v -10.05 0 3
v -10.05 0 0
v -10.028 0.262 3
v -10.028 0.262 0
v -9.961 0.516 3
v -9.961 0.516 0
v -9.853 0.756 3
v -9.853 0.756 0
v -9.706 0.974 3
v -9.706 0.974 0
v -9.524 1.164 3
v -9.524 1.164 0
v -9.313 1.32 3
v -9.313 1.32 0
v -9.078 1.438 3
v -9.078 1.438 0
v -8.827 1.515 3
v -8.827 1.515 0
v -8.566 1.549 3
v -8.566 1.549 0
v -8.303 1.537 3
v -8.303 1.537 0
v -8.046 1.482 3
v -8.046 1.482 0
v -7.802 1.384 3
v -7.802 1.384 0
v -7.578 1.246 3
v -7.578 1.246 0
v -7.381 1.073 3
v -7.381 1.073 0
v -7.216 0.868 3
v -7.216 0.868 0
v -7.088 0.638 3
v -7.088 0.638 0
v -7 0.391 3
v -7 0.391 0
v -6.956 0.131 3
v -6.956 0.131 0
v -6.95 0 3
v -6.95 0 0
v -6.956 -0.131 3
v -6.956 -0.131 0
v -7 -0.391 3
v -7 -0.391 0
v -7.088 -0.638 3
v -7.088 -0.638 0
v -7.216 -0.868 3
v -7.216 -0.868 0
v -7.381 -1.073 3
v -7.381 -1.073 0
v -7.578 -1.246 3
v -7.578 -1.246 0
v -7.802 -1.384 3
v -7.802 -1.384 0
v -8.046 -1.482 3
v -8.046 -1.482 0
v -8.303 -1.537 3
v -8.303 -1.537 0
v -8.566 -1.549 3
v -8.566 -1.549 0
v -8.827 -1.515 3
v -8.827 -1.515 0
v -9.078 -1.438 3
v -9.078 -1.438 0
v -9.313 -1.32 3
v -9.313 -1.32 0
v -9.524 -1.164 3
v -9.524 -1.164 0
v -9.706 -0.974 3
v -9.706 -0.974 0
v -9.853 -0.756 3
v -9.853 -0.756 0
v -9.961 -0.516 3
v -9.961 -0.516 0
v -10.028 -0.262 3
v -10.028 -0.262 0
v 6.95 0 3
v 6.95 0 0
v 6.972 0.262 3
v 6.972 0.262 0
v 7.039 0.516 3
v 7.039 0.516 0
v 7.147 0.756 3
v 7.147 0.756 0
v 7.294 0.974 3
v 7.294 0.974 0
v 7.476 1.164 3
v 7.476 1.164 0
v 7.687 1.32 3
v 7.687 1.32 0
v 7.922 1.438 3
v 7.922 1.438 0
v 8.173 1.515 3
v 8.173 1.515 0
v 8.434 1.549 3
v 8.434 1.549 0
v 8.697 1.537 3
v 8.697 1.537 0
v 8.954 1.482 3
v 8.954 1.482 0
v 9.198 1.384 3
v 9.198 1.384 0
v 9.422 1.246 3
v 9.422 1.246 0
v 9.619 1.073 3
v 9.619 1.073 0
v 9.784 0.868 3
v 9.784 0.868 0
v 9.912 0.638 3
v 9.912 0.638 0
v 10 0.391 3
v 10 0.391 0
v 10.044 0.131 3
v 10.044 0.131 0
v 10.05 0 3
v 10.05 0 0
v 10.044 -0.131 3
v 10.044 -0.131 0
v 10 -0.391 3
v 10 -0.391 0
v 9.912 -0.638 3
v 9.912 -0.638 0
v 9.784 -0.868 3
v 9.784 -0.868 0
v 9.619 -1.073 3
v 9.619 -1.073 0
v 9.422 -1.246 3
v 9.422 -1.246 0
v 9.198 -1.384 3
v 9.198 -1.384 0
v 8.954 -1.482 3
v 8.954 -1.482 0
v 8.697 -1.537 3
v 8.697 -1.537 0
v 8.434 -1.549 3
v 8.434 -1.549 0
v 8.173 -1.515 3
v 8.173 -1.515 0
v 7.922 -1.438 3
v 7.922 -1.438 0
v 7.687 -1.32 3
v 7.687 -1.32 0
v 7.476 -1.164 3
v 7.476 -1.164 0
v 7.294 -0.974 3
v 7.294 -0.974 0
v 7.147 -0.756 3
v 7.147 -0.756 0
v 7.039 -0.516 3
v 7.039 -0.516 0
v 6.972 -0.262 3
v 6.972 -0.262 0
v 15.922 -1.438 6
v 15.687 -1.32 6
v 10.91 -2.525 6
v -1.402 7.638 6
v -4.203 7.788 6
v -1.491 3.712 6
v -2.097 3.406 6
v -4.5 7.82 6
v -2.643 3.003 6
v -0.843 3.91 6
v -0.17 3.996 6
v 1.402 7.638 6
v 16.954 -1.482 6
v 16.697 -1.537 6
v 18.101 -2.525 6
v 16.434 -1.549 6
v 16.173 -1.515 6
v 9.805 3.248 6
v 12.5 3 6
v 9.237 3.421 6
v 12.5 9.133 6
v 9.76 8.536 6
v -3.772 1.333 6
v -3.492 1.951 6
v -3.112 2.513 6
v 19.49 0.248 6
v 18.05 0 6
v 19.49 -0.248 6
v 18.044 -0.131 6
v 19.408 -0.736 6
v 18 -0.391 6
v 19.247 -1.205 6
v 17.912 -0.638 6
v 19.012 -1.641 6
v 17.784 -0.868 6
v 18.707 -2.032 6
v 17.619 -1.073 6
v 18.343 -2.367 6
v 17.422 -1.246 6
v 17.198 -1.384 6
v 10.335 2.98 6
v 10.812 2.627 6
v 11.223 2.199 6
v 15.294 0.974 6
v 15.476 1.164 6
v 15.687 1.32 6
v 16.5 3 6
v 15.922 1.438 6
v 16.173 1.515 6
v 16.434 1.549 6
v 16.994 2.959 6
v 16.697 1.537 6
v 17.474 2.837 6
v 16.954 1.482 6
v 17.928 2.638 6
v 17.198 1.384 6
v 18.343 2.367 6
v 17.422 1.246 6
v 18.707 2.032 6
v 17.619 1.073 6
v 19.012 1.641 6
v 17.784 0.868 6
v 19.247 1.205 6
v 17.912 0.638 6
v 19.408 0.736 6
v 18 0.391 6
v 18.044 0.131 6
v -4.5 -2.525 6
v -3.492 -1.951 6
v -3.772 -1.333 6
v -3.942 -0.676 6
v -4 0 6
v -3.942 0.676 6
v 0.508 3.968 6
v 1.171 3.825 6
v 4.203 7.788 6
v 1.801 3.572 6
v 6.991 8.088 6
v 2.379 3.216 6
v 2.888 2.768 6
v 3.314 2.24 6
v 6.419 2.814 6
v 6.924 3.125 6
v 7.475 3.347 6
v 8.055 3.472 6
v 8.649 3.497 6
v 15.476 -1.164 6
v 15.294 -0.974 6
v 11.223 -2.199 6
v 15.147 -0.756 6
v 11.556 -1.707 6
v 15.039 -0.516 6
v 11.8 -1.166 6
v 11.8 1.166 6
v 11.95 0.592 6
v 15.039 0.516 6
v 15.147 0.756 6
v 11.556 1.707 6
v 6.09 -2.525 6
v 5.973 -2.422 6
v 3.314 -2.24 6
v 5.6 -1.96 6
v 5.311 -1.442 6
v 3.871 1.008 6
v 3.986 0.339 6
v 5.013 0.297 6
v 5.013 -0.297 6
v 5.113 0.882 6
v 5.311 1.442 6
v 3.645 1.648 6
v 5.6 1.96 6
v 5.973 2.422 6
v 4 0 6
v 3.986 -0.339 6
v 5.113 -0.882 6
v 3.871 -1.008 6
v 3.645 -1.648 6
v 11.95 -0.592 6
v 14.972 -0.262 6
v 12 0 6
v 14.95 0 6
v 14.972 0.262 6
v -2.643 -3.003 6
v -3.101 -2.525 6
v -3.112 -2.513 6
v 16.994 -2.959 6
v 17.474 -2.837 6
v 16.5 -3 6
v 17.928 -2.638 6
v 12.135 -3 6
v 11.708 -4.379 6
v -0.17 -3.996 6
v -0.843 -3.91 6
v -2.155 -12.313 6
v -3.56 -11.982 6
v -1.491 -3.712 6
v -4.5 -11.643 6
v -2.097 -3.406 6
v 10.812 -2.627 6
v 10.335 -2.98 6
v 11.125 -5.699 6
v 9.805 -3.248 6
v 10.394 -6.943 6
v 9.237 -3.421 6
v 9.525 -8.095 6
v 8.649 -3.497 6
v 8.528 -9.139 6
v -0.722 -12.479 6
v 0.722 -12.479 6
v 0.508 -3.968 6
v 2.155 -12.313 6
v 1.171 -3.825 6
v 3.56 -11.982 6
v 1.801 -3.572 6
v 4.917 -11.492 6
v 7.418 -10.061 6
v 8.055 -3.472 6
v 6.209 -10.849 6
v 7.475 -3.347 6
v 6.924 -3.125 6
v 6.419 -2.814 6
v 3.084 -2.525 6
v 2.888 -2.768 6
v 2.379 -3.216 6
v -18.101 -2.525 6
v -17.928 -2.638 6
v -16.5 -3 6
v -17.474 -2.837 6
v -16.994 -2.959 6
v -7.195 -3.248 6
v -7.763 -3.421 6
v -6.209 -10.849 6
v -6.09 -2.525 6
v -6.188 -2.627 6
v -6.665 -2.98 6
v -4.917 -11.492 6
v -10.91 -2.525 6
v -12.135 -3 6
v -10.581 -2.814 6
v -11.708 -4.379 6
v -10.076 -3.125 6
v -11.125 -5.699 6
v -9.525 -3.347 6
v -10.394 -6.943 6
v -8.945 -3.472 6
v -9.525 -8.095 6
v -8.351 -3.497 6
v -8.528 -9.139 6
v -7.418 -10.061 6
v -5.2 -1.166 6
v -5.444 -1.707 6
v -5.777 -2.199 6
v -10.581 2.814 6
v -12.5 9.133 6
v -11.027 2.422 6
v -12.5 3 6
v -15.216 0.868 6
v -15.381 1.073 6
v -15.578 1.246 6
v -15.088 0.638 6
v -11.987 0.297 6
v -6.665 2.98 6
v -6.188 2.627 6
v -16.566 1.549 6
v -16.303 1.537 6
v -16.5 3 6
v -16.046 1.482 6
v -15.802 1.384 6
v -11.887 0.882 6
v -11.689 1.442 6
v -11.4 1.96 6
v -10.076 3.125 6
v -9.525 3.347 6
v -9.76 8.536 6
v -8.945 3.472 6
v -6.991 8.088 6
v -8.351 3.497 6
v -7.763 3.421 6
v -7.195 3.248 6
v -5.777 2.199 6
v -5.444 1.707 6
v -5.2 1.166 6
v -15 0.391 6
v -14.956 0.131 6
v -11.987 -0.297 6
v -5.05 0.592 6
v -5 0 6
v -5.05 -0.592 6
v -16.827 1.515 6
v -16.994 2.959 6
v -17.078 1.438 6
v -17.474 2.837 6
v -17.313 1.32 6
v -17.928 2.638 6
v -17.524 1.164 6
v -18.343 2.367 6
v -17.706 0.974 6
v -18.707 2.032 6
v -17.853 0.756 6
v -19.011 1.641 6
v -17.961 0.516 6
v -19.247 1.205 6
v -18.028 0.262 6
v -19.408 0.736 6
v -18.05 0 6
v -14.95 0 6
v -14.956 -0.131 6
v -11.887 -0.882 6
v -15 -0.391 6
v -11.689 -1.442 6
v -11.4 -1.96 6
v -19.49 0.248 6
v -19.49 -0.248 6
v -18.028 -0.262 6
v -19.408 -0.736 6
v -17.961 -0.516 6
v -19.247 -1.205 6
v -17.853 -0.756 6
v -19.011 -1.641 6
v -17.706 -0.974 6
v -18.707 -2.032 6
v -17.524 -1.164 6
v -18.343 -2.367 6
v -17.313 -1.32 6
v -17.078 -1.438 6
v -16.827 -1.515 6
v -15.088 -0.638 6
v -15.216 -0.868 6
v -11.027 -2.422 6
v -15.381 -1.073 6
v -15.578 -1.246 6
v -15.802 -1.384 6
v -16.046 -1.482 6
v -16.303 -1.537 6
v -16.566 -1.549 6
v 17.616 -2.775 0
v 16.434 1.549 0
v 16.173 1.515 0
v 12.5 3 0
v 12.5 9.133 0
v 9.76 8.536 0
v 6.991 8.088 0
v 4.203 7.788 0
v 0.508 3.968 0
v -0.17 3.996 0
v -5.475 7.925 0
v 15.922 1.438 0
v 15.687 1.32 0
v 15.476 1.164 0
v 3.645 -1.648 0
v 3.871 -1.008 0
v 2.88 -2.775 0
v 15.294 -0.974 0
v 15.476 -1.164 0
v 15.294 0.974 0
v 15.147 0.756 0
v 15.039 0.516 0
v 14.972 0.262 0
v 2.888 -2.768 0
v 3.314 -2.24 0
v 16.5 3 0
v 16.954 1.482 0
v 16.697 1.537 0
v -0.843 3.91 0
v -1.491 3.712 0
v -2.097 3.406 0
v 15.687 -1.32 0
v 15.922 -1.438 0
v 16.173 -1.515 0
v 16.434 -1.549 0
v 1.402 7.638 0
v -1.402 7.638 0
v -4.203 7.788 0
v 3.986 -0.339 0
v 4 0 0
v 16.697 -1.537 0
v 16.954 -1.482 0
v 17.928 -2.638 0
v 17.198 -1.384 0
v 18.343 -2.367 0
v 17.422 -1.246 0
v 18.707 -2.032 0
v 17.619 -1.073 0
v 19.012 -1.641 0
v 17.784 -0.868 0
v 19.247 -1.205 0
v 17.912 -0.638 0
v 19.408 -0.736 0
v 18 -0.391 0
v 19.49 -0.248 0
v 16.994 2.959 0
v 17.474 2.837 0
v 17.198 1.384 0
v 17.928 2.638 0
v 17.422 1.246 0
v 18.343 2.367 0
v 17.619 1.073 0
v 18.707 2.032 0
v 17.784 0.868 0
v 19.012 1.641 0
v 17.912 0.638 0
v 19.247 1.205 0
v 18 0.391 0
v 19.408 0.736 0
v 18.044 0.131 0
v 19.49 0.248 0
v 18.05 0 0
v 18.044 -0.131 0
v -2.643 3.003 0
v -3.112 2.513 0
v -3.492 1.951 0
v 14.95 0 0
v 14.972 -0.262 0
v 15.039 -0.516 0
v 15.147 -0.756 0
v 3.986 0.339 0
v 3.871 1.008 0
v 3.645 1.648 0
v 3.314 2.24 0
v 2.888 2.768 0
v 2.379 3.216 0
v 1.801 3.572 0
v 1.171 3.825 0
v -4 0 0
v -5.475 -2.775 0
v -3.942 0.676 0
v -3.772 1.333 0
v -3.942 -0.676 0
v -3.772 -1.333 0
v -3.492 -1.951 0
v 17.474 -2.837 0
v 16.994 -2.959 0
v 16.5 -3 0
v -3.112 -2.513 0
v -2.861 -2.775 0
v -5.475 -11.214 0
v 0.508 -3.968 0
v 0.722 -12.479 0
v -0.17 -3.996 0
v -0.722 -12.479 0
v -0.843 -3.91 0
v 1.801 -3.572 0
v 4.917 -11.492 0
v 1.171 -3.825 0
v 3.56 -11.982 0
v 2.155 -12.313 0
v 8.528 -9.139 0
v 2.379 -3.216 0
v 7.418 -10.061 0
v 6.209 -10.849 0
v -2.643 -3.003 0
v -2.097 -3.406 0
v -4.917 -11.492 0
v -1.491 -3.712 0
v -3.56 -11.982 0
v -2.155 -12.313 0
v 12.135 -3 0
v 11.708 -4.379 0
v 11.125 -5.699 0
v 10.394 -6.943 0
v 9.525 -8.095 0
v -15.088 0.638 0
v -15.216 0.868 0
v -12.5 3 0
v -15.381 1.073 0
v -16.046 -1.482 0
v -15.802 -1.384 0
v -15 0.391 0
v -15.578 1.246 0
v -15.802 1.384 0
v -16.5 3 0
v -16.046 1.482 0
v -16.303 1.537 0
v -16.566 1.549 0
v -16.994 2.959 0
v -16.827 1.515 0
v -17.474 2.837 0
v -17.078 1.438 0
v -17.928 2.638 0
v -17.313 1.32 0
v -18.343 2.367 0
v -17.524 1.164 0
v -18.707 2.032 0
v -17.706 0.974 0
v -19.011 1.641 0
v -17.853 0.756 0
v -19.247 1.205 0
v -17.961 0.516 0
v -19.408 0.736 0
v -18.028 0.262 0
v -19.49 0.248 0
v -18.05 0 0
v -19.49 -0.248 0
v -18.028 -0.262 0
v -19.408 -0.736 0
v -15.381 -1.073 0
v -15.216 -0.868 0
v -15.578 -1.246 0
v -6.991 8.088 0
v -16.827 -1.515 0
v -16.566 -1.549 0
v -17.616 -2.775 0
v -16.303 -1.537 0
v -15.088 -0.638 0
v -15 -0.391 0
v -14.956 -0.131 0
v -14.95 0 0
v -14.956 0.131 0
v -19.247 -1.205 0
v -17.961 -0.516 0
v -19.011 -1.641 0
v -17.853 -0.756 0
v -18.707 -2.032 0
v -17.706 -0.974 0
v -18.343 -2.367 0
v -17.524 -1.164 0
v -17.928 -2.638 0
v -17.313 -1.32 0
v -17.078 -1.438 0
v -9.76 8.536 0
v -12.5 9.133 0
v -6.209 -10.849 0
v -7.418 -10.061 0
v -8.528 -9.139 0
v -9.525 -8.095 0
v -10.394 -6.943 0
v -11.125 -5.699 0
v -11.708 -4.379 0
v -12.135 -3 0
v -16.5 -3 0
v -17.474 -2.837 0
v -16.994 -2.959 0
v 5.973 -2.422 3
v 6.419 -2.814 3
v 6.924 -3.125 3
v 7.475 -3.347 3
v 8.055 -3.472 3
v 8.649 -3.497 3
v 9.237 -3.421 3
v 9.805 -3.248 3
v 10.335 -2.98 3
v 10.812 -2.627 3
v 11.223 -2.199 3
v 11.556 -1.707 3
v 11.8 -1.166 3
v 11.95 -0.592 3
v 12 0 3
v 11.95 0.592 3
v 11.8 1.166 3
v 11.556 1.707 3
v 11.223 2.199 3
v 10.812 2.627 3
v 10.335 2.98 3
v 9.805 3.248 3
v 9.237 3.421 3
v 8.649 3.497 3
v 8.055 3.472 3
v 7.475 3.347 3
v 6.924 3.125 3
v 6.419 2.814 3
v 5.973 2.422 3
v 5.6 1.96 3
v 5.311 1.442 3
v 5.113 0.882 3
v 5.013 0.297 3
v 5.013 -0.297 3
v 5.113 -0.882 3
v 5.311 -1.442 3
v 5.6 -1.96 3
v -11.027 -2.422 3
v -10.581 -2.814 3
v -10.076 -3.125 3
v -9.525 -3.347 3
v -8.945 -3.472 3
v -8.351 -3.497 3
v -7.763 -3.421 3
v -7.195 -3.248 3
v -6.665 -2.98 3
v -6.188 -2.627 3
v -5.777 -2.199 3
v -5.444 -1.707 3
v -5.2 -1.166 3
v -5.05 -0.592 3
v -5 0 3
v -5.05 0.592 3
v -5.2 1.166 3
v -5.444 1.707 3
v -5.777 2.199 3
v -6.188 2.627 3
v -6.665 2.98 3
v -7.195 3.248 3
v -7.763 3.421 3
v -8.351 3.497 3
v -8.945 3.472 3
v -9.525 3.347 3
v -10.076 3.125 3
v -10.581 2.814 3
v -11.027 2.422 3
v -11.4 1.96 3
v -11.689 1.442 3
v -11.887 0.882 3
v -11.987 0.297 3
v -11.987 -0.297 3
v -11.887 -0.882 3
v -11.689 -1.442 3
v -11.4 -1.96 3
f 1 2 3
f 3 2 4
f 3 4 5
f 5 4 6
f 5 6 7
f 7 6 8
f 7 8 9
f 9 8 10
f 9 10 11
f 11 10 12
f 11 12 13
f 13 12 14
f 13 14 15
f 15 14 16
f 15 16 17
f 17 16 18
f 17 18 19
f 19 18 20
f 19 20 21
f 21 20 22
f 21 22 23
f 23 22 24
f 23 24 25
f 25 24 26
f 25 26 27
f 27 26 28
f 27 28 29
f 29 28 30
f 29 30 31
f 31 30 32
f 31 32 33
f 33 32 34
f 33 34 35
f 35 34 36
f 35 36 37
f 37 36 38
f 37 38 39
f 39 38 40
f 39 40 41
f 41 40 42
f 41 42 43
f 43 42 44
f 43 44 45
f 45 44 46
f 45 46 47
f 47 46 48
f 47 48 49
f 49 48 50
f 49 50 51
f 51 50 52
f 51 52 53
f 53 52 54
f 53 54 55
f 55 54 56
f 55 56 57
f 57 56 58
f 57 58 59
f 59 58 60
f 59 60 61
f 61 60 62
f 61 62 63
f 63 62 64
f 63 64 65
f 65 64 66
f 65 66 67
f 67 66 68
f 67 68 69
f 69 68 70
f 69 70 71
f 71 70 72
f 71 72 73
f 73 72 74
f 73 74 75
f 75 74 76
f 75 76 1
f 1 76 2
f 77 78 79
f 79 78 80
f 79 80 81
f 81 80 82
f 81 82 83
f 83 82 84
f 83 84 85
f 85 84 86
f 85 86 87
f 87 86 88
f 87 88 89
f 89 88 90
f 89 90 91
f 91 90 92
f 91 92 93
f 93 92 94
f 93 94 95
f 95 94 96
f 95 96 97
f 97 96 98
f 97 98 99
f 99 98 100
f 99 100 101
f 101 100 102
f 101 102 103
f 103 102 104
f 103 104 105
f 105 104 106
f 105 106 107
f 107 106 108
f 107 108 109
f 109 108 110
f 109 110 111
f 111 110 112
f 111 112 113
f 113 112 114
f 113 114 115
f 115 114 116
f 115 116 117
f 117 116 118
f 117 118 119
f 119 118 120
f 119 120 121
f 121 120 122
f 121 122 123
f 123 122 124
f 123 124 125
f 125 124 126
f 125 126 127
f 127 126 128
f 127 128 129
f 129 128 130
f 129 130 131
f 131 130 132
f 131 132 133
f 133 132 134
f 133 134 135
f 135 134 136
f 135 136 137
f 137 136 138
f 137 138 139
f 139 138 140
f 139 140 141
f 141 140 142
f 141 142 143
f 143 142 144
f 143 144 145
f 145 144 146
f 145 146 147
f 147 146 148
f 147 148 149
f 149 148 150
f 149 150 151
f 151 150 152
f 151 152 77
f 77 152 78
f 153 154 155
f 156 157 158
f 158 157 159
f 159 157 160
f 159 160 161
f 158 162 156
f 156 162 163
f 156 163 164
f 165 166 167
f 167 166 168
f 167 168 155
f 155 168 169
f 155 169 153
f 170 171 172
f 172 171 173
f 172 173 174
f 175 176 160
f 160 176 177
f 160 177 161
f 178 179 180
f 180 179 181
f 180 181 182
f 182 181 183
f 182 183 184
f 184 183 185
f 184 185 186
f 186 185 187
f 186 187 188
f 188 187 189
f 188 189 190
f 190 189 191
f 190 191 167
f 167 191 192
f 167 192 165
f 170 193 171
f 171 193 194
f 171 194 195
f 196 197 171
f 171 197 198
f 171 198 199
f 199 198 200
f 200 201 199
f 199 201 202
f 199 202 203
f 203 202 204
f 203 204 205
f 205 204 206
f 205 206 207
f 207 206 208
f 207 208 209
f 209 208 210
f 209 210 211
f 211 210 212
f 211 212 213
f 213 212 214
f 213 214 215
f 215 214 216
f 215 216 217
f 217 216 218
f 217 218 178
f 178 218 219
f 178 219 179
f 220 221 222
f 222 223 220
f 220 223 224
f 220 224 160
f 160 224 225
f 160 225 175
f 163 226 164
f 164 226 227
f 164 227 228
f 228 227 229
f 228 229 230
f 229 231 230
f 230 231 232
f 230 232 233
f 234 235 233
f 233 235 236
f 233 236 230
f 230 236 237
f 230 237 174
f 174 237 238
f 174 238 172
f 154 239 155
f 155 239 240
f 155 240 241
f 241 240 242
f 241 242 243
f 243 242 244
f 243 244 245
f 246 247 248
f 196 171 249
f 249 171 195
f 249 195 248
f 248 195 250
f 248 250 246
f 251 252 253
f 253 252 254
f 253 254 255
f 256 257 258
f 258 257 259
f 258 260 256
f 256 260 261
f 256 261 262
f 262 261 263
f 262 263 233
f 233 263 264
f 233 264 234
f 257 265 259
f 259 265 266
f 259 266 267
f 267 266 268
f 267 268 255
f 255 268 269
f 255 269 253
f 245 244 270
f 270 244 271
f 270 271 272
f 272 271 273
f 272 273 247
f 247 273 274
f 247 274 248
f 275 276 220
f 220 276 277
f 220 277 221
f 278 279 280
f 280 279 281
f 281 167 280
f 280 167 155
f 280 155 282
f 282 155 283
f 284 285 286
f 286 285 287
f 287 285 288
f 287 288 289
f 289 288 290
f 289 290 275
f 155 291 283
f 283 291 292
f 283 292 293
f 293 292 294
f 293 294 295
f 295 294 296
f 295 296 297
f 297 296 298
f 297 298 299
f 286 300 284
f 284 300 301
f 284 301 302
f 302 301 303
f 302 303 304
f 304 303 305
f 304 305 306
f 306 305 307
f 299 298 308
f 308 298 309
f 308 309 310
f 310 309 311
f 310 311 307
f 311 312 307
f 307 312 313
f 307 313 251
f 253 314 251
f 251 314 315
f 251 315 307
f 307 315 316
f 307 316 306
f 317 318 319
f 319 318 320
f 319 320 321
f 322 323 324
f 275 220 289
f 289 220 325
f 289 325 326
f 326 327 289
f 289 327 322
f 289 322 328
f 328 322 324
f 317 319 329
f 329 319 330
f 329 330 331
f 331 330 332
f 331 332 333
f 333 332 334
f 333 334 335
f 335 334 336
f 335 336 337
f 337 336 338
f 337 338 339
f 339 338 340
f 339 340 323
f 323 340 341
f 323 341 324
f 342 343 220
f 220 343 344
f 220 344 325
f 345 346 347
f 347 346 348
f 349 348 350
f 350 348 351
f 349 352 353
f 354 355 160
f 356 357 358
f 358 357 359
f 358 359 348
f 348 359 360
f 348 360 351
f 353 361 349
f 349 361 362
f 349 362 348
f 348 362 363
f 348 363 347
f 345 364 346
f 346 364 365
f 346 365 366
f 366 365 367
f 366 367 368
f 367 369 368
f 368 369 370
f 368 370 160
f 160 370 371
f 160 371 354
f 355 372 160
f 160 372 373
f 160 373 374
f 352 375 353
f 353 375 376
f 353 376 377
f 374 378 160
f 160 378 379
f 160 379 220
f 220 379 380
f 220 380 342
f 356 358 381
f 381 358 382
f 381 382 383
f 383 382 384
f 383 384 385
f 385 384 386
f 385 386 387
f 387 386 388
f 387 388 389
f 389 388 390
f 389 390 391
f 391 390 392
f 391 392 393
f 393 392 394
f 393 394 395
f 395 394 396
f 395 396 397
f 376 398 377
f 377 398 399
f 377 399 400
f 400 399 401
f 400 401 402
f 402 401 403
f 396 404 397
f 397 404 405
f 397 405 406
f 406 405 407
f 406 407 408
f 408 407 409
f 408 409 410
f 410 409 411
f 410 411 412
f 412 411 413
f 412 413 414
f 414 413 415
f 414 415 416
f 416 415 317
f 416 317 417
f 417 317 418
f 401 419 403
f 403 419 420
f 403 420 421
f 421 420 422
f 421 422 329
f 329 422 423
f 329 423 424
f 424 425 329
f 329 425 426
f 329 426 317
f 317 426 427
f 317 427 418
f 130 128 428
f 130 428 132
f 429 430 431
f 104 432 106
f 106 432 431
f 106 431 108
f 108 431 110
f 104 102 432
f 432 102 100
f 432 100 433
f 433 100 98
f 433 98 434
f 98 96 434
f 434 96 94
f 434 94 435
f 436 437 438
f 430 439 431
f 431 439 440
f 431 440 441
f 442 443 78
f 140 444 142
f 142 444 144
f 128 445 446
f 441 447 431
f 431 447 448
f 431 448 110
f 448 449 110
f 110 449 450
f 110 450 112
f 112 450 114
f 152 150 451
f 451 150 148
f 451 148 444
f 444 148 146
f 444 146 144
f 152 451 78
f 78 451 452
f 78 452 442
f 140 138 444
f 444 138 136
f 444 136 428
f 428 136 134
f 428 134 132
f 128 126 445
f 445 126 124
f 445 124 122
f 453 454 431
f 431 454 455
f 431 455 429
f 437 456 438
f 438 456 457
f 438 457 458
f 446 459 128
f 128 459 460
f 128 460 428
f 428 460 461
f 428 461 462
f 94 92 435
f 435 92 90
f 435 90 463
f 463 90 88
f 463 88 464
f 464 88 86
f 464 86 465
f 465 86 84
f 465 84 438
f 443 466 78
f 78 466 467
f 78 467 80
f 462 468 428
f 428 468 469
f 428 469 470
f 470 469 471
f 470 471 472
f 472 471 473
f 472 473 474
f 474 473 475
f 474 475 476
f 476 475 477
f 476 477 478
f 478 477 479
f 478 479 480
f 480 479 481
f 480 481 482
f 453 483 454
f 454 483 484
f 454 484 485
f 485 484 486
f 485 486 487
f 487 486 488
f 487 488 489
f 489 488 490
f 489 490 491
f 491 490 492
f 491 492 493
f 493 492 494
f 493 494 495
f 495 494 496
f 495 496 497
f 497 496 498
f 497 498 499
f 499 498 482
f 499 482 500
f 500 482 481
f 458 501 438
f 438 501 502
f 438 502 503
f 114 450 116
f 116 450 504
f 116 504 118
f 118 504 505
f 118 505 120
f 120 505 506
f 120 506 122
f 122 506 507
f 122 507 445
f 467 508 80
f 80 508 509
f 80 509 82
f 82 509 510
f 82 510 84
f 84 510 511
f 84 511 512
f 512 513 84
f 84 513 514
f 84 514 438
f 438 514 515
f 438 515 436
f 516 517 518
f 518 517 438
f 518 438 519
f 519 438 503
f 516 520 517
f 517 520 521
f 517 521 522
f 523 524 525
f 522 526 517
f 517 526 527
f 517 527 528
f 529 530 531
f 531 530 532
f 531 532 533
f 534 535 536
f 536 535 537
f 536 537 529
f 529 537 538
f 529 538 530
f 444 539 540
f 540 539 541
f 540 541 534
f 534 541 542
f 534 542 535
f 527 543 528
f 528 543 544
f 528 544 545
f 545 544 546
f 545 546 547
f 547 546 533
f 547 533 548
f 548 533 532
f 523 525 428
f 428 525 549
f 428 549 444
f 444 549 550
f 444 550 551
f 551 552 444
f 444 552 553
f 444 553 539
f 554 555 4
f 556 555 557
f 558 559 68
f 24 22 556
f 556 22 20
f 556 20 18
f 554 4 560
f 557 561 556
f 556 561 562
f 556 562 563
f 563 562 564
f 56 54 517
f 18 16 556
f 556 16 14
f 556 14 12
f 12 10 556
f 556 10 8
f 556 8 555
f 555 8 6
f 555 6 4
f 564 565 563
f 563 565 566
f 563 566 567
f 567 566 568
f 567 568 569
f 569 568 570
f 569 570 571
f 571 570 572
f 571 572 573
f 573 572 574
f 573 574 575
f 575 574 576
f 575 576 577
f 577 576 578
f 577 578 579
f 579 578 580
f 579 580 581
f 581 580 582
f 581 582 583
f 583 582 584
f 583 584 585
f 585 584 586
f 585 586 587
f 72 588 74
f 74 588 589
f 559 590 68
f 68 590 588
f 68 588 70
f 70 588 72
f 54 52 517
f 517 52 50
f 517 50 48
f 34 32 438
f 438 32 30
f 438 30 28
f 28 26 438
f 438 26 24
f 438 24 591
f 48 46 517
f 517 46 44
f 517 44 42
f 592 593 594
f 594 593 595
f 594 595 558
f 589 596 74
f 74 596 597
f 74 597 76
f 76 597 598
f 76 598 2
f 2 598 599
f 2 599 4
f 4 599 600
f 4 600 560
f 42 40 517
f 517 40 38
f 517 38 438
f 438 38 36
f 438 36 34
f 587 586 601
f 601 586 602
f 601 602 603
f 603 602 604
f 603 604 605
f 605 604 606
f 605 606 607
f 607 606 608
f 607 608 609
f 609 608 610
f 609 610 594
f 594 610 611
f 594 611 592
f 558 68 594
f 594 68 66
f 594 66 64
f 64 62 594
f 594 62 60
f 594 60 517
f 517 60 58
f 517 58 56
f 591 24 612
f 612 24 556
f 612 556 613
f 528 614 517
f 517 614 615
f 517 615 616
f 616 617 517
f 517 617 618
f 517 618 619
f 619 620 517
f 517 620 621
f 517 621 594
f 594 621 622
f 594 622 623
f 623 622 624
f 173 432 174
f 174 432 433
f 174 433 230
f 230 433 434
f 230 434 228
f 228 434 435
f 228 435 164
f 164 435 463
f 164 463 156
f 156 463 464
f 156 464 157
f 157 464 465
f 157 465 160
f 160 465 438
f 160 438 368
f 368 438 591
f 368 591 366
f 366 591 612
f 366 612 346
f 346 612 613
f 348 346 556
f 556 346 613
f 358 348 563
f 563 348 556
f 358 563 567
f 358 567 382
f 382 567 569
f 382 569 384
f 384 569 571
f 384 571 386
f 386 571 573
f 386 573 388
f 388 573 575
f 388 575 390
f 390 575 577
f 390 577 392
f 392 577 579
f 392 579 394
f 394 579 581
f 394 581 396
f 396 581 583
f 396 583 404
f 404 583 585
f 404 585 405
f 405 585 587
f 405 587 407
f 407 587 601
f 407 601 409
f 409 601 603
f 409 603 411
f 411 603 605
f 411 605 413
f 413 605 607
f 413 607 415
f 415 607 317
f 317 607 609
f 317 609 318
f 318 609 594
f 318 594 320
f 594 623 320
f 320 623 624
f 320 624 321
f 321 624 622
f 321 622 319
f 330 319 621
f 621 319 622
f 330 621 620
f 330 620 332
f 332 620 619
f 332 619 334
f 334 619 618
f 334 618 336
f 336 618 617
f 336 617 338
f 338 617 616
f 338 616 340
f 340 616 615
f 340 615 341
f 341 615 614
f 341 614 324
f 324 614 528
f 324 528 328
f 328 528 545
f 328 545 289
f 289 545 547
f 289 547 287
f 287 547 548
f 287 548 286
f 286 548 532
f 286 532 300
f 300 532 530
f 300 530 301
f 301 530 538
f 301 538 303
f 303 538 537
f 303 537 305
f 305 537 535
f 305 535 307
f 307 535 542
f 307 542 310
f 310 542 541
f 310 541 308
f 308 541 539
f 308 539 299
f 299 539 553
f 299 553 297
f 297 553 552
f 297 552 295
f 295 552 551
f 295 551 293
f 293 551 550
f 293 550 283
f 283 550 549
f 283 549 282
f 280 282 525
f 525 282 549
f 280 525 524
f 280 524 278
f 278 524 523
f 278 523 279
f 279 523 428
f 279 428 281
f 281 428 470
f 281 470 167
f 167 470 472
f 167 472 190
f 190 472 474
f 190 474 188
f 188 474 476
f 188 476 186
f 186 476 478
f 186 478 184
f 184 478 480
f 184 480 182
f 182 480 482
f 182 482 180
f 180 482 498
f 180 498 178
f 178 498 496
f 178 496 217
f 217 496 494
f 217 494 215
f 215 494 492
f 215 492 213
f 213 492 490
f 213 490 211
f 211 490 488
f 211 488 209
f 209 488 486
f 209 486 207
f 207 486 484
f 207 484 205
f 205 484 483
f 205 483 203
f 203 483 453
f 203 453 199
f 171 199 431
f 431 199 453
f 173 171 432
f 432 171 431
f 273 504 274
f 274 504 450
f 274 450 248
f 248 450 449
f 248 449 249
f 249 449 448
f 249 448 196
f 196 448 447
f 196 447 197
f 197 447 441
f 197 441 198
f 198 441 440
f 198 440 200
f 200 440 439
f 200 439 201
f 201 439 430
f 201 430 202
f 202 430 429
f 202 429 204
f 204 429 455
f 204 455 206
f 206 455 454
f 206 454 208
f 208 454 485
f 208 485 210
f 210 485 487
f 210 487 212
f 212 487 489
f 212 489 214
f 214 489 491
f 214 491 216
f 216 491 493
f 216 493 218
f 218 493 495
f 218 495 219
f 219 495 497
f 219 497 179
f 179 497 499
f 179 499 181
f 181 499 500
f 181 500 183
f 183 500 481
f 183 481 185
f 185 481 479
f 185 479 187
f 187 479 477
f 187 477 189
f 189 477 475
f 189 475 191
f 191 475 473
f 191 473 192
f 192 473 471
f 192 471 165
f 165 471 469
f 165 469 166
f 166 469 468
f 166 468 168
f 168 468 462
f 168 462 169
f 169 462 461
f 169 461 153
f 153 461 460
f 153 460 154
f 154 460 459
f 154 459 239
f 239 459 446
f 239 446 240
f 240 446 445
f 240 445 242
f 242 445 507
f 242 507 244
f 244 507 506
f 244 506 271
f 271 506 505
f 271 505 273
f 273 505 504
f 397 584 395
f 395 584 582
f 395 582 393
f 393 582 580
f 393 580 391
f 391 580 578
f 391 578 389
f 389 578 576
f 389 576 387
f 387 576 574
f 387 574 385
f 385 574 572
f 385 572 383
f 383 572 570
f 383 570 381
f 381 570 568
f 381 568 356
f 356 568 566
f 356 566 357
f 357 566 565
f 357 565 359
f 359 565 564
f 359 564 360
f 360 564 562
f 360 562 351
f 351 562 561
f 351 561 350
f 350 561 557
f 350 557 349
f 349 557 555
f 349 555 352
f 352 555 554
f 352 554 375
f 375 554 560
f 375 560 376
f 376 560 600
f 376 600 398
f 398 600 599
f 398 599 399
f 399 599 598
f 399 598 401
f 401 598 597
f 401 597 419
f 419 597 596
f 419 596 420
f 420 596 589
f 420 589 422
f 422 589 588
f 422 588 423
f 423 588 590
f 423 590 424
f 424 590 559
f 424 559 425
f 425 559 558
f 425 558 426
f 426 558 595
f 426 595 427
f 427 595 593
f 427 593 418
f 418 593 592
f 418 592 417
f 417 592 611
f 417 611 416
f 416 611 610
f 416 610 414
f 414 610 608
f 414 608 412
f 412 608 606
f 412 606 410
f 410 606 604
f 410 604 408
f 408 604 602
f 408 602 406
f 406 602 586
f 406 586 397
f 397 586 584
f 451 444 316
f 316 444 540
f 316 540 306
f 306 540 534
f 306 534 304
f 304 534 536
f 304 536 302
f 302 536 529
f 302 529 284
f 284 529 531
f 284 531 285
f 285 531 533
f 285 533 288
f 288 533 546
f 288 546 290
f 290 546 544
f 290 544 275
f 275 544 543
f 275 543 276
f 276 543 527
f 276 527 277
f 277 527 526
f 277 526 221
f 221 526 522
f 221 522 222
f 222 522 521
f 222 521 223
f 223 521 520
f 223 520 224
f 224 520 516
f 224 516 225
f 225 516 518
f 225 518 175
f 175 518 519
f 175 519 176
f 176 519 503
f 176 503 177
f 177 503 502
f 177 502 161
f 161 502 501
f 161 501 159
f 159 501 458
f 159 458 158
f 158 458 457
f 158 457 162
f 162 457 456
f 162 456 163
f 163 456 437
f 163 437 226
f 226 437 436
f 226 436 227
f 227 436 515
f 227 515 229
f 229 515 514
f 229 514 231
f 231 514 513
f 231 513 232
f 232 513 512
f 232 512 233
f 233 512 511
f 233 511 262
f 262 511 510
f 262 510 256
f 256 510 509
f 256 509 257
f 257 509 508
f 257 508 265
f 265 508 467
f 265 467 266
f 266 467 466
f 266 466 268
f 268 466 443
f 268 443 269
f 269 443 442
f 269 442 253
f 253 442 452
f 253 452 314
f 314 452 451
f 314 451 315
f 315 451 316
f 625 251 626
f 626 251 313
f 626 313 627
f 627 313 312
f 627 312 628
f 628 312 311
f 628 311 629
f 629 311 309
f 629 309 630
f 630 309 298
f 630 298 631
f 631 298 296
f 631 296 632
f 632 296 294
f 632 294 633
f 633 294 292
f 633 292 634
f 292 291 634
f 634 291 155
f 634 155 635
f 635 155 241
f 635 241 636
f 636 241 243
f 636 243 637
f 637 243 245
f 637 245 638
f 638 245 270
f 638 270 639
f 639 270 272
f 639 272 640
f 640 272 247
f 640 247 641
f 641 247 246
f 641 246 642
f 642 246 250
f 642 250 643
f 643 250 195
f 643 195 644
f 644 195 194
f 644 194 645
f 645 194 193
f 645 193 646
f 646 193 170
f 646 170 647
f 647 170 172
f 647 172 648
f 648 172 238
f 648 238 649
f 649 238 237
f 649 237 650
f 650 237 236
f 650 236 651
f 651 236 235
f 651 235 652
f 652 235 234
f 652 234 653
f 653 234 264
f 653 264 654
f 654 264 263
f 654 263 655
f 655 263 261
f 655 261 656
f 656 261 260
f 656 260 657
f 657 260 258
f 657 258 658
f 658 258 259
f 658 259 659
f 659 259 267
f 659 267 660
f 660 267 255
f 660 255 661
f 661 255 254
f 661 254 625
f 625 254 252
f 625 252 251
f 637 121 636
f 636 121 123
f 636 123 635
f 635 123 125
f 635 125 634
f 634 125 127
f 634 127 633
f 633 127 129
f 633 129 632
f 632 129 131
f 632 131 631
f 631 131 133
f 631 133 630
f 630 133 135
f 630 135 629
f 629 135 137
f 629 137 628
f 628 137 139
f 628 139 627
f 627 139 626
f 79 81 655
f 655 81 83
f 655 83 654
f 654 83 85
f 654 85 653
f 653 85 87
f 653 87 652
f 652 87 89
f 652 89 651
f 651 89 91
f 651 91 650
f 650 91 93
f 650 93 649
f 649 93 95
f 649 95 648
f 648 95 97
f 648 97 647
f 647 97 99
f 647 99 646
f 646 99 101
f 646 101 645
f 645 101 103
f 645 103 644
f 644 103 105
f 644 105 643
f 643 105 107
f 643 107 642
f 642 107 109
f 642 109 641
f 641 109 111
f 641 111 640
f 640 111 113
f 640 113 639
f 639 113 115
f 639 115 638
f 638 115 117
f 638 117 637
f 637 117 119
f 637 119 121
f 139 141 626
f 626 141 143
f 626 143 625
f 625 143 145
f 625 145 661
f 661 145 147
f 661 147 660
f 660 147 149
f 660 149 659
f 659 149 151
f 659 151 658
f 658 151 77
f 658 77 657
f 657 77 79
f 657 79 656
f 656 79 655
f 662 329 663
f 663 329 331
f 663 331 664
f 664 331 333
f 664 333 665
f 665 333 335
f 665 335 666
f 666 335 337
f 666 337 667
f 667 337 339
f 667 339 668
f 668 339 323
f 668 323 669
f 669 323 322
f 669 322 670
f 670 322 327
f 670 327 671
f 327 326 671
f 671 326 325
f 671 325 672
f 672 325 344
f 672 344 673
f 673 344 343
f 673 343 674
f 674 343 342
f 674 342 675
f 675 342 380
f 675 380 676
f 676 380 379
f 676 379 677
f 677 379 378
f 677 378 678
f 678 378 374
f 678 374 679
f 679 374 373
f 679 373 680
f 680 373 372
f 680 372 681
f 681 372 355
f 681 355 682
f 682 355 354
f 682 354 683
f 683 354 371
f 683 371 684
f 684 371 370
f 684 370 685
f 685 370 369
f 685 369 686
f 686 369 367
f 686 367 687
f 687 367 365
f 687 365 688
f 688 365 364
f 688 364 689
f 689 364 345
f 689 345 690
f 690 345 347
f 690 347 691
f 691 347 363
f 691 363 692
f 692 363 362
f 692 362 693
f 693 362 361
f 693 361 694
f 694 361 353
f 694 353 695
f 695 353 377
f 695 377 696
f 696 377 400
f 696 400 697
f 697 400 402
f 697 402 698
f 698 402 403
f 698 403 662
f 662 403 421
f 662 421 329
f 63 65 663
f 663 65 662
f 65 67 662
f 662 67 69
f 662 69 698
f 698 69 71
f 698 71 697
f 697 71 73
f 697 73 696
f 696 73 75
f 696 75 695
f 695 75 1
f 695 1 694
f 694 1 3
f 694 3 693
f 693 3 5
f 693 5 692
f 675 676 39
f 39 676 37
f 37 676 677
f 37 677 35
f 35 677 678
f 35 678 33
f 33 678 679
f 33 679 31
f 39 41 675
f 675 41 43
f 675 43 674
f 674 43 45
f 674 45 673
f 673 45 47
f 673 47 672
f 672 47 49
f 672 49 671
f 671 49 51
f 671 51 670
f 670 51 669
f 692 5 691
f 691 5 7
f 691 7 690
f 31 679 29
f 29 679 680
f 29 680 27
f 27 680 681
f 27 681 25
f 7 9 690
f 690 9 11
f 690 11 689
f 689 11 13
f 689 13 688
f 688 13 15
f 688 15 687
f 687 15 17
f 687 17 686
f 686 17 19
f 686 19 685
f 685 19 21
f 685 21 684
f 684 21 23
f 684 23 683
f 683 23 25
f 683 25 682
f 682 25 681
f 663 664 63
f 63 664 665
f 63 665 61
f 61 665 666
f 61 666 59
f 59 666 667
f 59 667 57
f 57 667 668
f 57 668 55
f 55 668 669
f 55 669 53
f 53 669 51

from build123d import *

# Parameters (mm, degrees)
SKETCH1_R           = 1.55
SKETCH1_R_2         = 4
BOSS_EXTRUDE1_DEPTH = 6
SKETCH2_R           = 3.5
CUT_EXTRUDE1_DEPTH  = 3


with BuildPart() as part:
    # Sketch1 → Boss-Extrude1 (new body)
    with BuildSketch(Plane.XY):
        with BuildLine():
            Line((-16.5, 3), (-12.5, 3))
            Line((-12.5, 3), (-12.5, 9.132525127))
            ThreePointArc((-12.5, 9.132525127), (0, 7.619182901), (12.5, 9.132525127))
            Line((12.5, 9.132525127), (12.5, 3))
            Line((12.5, 3), (16.5, 3))
            ThreePointArc((16.5, 3), (19.5, 0), (16.5, -3))
            Line((16.5, -3), (12.1346611, -3))
            ThreePointArc((12.1346611, -3), (0, -12.5), (-12.1346611, -3))
            Line((-12.1346611, -3), (-16.5, -3))
            ThreePointArc((-16.5, -3), (-19.5, 0), (-16.5, 3))
        make_face()
        with Locations((-8.5, 0)):
            Circle(SKETCH1_R, mode=Mode.SUBTRACT)
        with Locations((8.5, 0)):
            Circle(SKETCH1_R, mode=Mode.SUBTRACT)
        Circle(SKETCH1_R_2, mode=Mode.SUBTRACT)
        with Locations((-16.5, 0)):
            Circle(SKETCH1_R, mode=Mode.SUBTRACT)
        with Locations((16.5, 0)):
            Circle(SKETCH1_R, mode=Mode.SUBTRACT)
    extrude(amount=BOSS_EXTRUDE1_DEPTH)

    # Sketch2 → Cut-Extrude1 (cut)
    with BuildSketch(Plane.XY.offset(6)):
        with Locations((-8.5, 0)):
            Circle(SKETCH2_R)
        with Locations((8.5, 0)):
            Circle(SKETCH2_R)
    extrude(amount=-CUT_EXTRUDE1_DEPTH, mode=Mode.SUBTRACT)


solid = part.part
